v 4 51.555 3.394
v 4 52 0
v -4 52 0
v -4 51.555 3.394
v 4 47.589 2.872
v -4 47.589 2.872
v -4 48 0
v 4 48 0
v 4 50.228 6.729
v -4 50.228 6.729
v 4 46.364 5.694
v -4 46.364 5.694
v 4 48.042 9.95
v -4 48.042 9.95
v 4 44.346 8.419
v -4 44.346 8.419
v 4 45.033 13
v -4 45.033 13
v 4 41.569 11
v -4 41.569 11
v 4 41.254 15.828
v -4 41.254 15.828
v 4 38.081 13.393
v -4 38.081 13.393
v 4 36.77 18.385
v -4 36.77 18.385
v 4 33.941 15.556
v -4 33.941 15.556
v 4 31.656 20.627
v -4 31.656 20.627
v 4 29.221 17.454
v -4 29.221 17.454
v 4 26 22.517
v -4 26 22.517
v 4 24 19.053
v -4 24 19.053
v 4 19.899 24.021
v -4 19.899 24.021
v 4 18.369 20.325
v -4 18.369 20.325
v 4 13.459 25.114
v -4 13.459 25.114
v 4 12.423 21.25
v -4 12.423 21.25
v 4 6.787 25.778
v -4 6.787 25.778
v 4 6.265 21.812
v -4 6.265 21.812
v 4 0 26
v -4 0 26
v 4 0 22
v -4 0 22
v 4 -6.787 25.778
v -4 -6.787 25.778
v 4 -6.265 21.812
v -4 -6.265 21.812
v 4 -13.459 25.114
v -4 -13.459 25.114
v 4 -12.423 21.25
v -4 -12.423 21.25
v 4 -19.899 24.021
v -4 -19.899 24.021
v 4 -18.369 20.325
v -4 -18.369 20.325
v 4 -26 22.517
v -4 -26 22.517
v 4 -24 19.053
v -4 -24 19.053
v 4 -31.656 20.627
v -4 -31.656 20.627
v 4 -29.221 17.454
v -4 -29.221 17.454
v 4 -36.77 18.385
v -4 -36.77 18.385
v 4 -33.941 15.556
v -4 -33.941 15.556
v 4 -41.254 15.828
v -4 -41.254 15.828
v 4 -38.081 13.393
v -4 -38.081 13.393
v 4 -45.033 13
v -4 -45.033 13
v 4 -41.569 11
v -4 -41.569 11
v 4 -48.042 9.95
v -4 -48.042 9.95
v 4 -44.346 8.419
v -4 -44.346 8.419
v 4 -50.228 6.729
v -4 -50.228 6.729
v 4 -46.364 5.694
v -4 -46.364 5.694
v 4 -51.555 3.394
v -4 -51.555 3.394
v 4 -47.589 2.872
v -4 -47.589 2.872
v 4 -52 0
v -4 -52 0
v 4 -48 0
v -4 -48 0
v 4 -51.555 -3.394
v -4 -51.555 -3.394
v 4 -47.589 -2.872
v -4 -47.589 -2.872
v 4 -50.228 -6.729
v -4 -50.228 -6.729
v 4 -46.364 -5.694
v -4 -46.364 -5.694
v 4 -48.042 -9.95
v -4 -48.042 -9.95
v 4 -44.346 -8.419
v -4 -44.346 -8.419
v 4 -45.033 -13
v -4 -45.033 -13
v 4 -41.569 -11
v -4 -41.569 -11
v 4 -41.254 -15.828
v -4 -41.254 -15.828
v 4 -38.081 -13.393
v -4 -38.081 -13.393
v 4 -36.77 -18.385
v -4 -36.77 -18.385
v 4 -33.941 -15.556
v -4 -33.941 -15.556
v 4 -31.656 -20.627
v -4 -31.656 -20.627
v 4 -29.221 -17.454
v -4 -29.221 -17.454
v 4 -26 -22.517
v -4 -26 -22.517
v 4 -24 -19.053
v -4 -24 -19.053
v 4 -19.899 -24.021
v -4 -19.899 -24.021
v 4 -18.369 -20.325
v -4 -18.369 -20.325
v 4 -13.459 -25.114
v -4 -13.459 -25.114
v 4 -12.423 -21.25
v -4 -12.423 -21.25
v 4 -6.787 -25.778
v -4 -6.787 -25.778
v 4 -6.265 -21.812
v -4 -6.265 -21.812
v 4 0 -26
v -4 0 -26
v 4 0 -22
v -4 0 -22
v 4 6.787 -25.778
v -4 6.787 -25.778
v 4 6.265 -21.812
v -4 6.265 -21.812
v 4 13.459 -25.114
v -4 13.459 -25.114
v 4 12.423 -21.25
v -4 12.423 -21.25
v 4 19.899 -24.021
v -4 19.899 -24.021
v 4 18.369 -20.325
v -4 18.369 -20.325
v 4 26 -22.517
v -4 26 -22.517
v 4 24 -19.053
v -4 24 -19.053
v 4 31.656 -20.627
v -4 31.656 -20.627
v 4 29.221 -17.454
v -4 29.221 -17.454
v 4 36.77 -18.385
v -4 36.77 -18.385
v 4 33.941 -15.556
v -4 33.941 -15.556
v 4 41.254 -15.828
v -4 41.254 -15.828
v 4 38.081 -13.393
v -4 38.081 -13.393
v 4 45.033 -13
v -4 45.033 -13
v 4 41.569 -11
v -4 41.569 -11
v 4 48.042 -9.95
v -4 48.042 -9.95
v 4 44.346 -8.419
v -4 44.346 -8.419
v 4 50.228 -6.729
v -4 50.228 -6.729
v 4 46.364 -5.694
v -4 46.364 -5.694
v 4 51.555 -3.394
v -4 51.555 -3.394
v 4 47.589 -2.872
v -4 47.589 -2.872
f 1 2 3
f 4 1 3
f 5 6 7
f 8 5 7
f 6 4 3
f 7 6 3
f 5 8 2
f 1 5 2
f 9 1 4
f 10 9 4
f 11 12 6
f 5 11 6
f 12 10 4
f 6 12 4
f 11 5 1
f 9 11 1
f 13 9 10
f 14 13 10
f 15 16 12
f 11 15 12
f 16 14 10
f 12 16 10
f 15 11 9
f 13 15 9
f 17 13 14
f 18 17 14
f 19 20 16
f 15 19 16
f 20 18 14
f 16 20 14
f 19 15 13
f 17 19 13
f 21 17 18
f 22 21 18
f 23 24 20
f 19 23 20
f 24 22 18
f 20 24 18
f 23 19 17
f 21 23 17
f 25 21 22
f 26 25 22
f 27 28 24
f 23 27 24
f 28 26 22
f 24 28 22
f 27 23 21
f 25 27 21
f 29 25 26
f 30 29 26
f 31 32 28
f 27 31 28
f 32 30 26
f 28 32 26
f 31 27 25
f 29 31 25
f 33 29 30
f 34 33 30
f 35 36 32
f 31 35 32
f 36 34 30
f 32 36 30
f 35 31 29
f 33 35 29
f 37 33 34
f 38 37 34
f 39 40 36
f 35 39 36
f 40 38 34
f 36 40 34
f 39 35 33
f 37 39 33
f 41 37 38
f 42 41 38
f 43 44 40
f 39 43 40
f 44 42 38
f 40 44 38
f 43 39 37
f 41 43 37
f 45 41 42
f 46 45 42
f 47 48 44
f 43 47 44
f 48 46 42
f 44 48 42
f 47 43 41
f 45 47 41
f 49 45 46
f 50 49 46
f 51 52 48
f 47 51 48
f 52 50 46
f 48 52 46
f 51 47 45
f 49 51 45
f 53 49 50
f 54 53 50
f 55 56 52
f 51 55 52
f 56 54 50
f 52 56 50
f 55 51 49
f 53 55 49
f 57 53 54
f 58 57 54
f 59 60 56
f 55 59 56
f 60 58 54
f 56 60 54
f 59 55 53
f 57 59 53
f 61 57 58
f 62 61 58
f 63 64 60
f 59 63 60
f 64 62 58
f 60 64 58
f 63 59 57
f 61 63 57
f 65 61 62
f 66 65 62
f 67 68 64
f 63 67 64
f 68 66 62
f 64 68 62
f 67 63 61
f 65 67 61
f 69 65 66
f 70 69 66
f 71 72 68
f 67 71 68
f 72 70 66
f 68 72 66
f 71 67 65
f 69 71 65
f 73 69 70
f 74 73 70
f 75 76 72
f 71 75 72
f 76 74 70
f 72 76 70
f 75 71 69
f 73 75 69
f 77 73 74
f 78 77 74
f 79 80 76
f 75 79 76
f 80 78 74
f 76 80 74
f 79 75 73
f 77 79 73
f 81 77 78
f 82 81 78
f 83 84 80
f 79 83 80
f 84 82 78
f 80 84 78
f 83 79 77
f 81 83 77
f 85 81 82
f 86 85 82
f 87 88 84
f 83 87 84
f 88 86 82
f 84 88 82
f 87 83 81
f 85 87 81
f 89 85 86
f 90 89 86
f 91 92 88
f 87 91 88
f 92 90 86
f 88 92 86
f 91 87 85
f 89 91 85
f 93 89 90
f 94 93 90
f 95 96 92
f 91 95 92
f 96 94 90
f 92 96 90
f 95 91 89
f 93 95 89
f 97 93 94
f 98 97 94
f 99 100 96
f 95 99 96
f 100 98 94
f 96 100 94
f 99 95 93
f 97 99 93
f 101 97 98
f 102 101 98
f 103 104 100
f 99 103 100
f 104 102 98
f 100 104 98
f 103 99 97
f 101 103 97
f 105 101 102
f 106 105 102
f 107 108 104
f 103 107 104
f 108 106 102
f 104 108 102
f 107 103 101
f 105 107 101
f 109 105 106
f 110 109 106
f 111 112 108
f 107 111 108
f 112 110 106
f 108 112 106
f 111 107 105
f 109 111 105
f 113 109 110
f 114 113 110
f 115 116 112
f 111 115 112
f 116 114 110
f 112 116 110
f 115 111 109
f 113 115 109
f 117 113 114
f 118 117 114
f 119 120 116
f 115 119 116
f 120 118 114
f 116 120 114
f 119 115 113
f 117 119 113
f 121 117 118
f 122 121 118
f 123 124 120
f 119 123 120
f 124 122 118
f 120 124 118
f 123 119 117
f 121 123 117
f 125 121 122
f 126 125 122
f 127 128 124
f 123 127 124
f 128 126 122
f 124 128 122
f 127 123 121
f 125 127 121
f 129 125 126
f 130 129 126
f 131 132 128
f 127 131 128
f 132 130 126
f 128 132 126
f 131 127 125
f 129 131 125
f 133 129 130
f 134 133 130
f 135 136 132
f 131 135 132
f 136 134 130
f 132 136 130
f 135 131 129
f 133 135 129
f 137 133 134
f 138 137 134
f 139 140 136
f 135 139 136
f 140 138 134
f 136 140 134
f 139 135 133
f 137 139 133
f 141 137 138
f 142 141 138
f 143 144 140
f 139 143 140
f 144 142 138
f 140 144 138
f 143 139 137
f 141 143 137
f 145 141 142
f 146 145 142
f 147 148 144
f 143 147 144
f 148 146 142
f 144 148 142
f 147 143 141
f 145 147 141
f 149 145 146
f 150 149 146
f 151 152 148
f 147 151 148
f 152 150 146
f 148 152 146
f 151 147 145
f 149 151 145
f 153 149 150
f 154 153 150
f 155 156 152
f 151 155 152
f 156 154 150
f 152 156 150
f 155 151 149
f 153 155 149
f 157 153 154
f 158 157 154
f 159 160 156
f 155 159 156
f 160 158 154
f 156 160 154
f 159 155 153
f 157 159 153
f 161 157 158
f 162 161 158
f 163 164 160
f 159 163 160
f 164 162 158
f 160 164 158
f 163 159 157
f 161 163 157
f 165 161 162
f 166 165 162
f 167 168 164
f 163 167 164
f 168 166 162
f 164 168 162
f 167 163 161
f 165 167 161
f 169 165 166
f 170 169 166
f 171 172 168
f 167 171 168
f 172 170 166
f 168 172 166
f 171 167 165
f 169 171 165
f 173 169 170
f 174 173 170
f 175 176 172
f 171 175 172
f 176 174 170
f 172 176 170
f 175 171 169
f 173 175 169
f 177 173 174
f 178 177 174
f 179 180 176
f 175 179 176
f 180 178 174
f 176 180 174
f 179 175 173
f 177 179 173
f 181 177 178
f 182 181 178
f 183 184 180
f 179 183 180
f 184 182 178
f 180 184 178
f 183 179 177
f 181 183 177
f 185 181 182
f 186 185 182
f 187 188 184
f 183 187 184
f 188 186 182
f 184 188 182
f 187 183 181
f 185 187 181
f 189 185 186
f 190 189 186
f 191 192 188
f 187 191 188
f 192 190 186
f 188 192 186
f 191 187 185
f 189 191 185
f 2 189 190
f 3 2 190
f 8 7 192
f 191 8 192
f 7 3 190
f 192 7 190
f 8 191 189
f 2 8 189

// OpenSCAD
polyhedron(points=[[-4.0, 52.0, 0.0], [-4.0, 51.555133, 3.393681], [-4.0, 50.228143, 6.729295], [-4.0, 48.041736, 9.949769], [-4.0, 45.033321, 13.0], [-4.0, 41.254374, 15.827797], [-4.0, 36.769553, 18.384776], [-4.0, 31.655594, 20.627187], [-4.0, 26.0, 22.51666], [-4.0, 19.899538, 24.020868], [-4.0, 13.45859, 25.114071], [-4.0, 6.787362, 25.777566], [-4.0, 0.0, 26.0], [-4.0, -6.787362, 25.777566], [-4.0, -13.45859, 25.114071], [-4.0, -19.899538, 24.020868], [-4.0, -26.0, 22.51666], [-4.0, -31.655594, 20.627187], [-4.0, -36.769553, 18.384776], [-4.0, -41.254374, 15.827797], [-4.0, -45.033321, 13.0], [-4.0, -48.041736, 9.949769], [-4.0, -50.228143, 6.729295], [-4.0, -51.555133, 3.393681], [-4.0, -52.0, 0.0], [-4.0, -51.555133, -3.393681], [-4.0, -50.228143, -6.729295], [-4.0, -48.041736, -9.949769], [-4.0, -45.033321, -13.0], [-4.0, -41.254374, -15.827797], [-4.0, -36.769553, -18.384776], [-4.0, -31.655594, -20.627187], [-4.0, -26.0, -22.51666], [-4.0, -19.899538, -24.020868], [-4.0, -13.45859, -25.114071], [-4.0, -6.787362, -25.777566], [-4.0, -0.0, -26.0], [-4.0, 6.787362, -25.777566], [-4.0, 13.45859, -25.114071], [-4.0, 19.899538, -24.020868], [-4.0, 26.0, -22.51666], [-4.0, 31.655594, -20.627187], [-4.0, 36.769553, -18.384776], [-4.0, 41.254374, -15.827797], [-4.0, 45.033321, -13.0], [-4.0, 48.041736, -9.949769], [-4.0, 50.228143, -6.729295], [-4.0, 51.555133, -3.393681], [-4.0, 48.0, 0.0], [-4.0, 47.589353, 2.871576], [-4.0, 46.36444, 5.694019], [-4.0, 44.346218, 8.419036], [-4.0, 41.569219, 11.0], [-4.0, 38.08096, 13.392751], [-4.0, 33.941125, 15.556349], [-4.0, 29.220549, 17.453773], [-4.0, 24.0, 19.052559], [-4.0, 18.368805, 20.32535], [-4.0, 12.423314, 21.250368], [-4.0, 6.265257, 21.811787], [-4.0, 0.0, 22.0], [-4.0, -6.265257, 21.811787], [-4.0, -12.423314, 21.250368], [-4.0, -18.368805, 20.32535], [-4.0, -24.0, 19.052559], [-4.0, -29.220549, 17.453773], [-4.0, -33.941125, 15.556349], [-4.0, -38.08096, 13.392751], [-4.0, -41.569219, 11.0], [-4.0, -44.346218, 8.419036], [-4.0, -46.36444, 5.694019], [-4.0, -47.589353, 2.871576], [-4.0, -48.0, 0.0], [-4.0, -47.589353, -2.871576], [-4.0, -46.36444, -5.694019], [-4.0, -44.346218, -8.419036], [-4.0, -41.569219, -11.0], [-4.0, -38.08096, -13.392751], [-4.0, -33.941125, -15.556349], [-4.0, -29.220549, -17.453773], [-4.0, -24.0, -19.052559], [-4.0, -18.368805, -20.32535], [-4.0, -12.423314, -21.250368], [-4.0, -6.265257, -21.811787], [-4.0, -0.0, -22.0], [-4.0, 6.265257, -21.811787], [-4.0, 12.423314, -21.250368], [-4.0, 18.368805, -20.32535], [-4.0, 24.0, -19.052559], [-4.0, 29.220549, -17.453773], [-4.0, 33.941125, -15.556349], [-4.0, 38.08096, -13.392751], [-4.0, 41.569219, -11.0], [-4.0, 44.346218, -8.419036], [-4.0, 46.36444, -5.694019], [-4.0, 47.589353, -2.871576], [4.0, 52.0, 0.0], [4.0, 51.555133, 3.393681], [4.0, 50.228143, 6.729295], [4.0, 48.041736, 9.949769], [4.0, 45.033321, 13.0], [4.0, 41.254374, 15.827797], [4.0, 36.769553, 18.384776], [4.0, 31.655594, 20.627187], [4.0, 26.0, 22.51666], [4.0, 19.899538, 24.020868], [4.0, 13.45859, 25.114071], [4.0, 6.787362, 25.777566], [4.0, 0.0, 26.0], [4.0, -6.787362, 25.777566], [4.0, -13.45859, 25.114071], [4.0, -19.899538, 24.020868], [4.0, -26.0, 22.51666], [4.0, -31.655594, 20.627187], [4.0, -36.769553, 18.384776], [4.0, -41.254374, 15.827797], [4.0, -45.033321, 13.0], [4.0, -48.041736, 9.949769], [4.0, -50.228143, 6.729295], [4.0, -51.555133, 3.393681], [4.0, -52.0, 0.0], [4.0, -51.555133, -3.393681], [4.0, -50.228143, -6.729295], [4.0, -48.041736, -9.949769], [4.0, -45.033321, -13.0], [4.0, -41.254374, -15.827797], [4.0, -36.769553, -18.384776], [4.0, -31.655594, -20.627187], [4.0, -26.0, -22.51666], [4.0, -19.899538, -24.020868], [4.0, -13.45859, -25.114071], [4.0, -6.787362, -25.777566], [4.0, -0.0, -26.0], [4.0, 6.787362, -25.777566], [4.0, 13.45859, -25.114071], [4.0, 19.899538, -24.020868], [4.0, 26.0, -22.51666], [4.0, 31.655594, -20.627187], [4.0, 36.769553, -18.384776], [4.0, 41.254374, -15.827797], [4.0, 45.033321, -13.0], [4.0, 48.041736, -9.949769], [4.0, 50.228143, -6.729295], [4.0, 51.555133, -3.393681], [4.0, 48.0, 0.0], [4.0, 47.589353, 2.871576], [4.0, 46.36444, 5.694019], [4.0, 44.346218, 8.419036], [4.0, 41.569219, 11.0], [4.0, 38.08096, 13.392751], [4.0, 33.941125, 15.556349], [4.0, 29.220549, 17.453773], [4.0, 24.0, 19.052559], [4.0, 18.368805, 20.32535], [4.0, 12.423314, 21.250368], [4.0, 6.265257, 21.811787], [4.0, 0.0, 22.0], [4.0, -6.265257, 21.811787], [4.0, -12.423314, 21.250368], [4.0, -18.368805, 20.32535], [4.0, -24.0, 19.052559], [4.0, -29.220549, 17.453773], [4.0, -33.941125, 15.556349], [4.0, -38.08096, 13.392751], [4.0, -41.569219, 11.0], [4.0, -44.346218, 8.419036], [4.0, -46.36444, 5.694019], [4.0, -47.589353, 2.871576], [4.0, -48.0, 0.0], [4.0, -47.589353, -2.871576], [4.0, -46.36444, -5.694019], [4.0, -44.346218, -8.419036], [4.0, -41.569219, -11.0], [4.0, -38.08096, -13.392751], [4.0, -33.941125, -15.556349], [4.0, -29.220549, -17.453773], [4.0, -24.0, -19.052559], [4.0, -18.368805, -20.32535], [4.0, -12.423314, -21.250368], [4.0, -6.265257, -21.811787], [4.0, -0.0, -22.0], [4.0, 6.265257, -21.811787], [4.0, 12.423314, -21.250368], [4.0, 18.368805, -20.32535], [4.0, 24.0, -19.052559], [4.0, 29.220549, -17.453773], [4.0, 33.941125, -15.556349], [4.0, 38.08096, -13.392751], [4.0, 41.569219, -11.0], [4.0, 44.346218, -8.419036], [4.0, 46.36444, -5.694019], [4.0, 47.589353, -2.871576]], faces=[[0, 96, 97], [0, 97, 1], [48, 49, 145], [48, 145, 144], [0, 1, 49], [0, 49, 48], [96, 144, 145], [96, 145, 97], [1, 97, 98], [1, 98, 2], [49, 50, 146], [49, 146, 145], [1, 2, 50], [1, 50, 49], [97, 145, 146], [97, 146, 98], [2, 98, 99], [2, 99, 3], [50, 51, 147], [50, 147, 146], [2, 3, 51], [2, 51, 50], [98, 146, 147], [98, 147, 99], [3, 99, 100], [3, 100, 4], [51, 52, 148], [51, 148, 147], [3, 4, 52], [3, 52, 51], [99, 147, 148], [99, 148, 100], [4, 100, 101], [4, 101, 5], [52, 53, 149], [52, 149, 148], [4, 5, 53], [4, 53, 52], [100, 148, 149], [100, 149, 101], [5, 101, 102], [5, 102, 6], [53, 54, 150], [53, 150, 149], [5, 6, 54], [5, 54, 53], [101, 149, 150], [101, 150, 102], [6, 102, 103], [6, 103, 7], [54, 55, 151], [54, 151, 150], [6, 7, 55], [6, 55, 54], [102, 150, 151], [102, 151, 103], [7, 103, 104], [7, 104, 8], [55, 56, 152], [55, 152, 151], [7, 8, 56], [7, 56, 55], [103, 151, 152], [103, 152, 104], [8, 104, 105], [8, 105, 9], [56, 57, 153], [56, 153, 152], [8, 9, 57], [8, 57, 56], [104, 152, 153], [104, 153, 105], [9, 105, 106], [9, 106, 10], [57, 58, 154], [57, 154, 153], [9, 10, 58], [9, 58, 57], [105, 153, 154], [105, 154, 106], [10, 106, 107], [10, 107, 11], [58, 59, 155], [58, 155, 154], [10, 11, 59], [10, 59, 58], [106, 154, 155], [106, 155, 107], [11, 107, 108], [11, 108, 12], [59, 60, 156], [59, 156, 155], [11, 12, 60], [11, 60, 59], [107, 155, 156], [107, 156, 108], [12, 108, 109], [12, 109, 13], [60, 61, 157], [60, 157, 156], [12, 13, 61], [12, 61, 60], [108, 156, 157], [108, 157, 109], [13, 109, 110], [13, 110, 14], [61, 62, 158], [61, 158, 157], [13, 14, 62], [13, 62, 61], [109, 157, 158], [109, 158, 110], [14, 110, 111], [14, 111, 15], [62, 63, 159], [62, 159, 158], [14, 15, 63], [14, 63, 62], [110, 158, 159], [110, 159, 111], [15, 111, 112], [15, 112, 16], [63, 64, 160], [63, 160, 159], [15, 16, 64], [15, 64, 63], [111, 159, 160], [111, 160, 112], [16, 112, 113], [16, 113, 17], [64, 65, 161], [64, 161, 160], [16, 17, 65], [16, 65, 64], [112, 160, 161], [112, 161, 113], [17, 113, 114], [17, 114, 18], [65, 66, 162], [65, 162, 161], [17, 18, 66], [17, 66, 65], [113, 161, 162], [113, 162, 114], [18, 114, 115], [18, 115, 19], [66, 67, 163], [66, 163, 162], [18, 19, 67], [18, 67, 66], [114, 162, 163], [114, 163, 115], [19, 115, 116], [19, 116, 20], [67, 68, 164], [67, 164, 163], [19, 20, 68], [19, 68, 67], [115, 163, 164], [115, 164, 116], [20, 116, 117], [20, 117, 21], [68, 69, 165], [68, 165, 164], [20, 21, 69], [20, 69, 68], [116, 164, 165], [116, 165, 117], [21, 117, 118], [21, 118, 22], [69, 70, 166], [69, 166, 165], [21, 22, 70], [21, 70, 69], [117, 165, 166], [117, 166, 118], [22, 118, 119], [22, 119, 23], [70, 71, 167], [70, 167, 166], [22, 23, 71], [22, 71, 70], [118, 166, 167], [118, 167, 119], [23, 119, 120], [23, 120, 24], [71, 72, 168], [71, 168, 167], [23, 24, 72], [23, 72, 71], [119, 167, 168], [119, 168, 120], [24, 120, 121], [24, 121, 25], [72, 73, 169], [72, 169, 168], [24, 25, 73], [24, 73, 72], [120, 168, 169], [120, 169, 121], [25, 121, 122], [25, 122, 26], [73, 74, 170], [73, 170, 169], [25, 26, 74], [25, 74, 73], [121, 169, 170], [121, 170, 122], [26, 122, 123], [26, 123, 27], [74, 75, 171], [74, 171, 170], [26, 27, 75], [26, 75, 74], [122, 170, 171], [122, 171, 123], [27, 123, 124], [27, 124, 28], [75, 76, 172], [75, 172, 171], [27, 28, 76], [27, 76, 75], [123, 171, 172], [123, 172, 124], [28, 124, 125], [28, 125, 29], [76, 77, 173], [76, 173, 172], [28, 29, 77], [28, 77, 76], [124, 172, 173], [124, 173, 125], [29, 125, 126], [29, 126, 30], [77, 78, 174], [77, 174, 173], [29, 30, 78], [29, 78, 77], [125, 173, 174], [125, 174, 126], [30, 126, 127], [30, 127, 31], [78, 79, 175], [78, 175, 174], [30, 31, 79], [30, 79, 78], [126, 174, 175], [126, 175, 127], [31, 127, 128], [31, 128, 32], [79, 80, 176], [79, 176, 175], [31, 32, 80], [31, 80, 79], [127, 175, 176], [127, 176, 128], [32, 128, 129], [32, 129, 33], [80, 81, 177], [80, 177, 176], [32, 33, 81], [32, 81, 80], [128, 176, 177], [128, 177, 129], [33, 129, 130], [33, 130, 34], [81, 82, 178], [81, 178, 177], [33, 34, 82], [33, 82, 81], [129, 177, 178], [129, 178, 130], [34, 130, 131], [34, 131, 35], [82, 83, 179], [82, 179, 178], [34, 35, 83], [34, 83, 82], [130, 178, 179], [130, 179, 131], [35, 131, 132], [35, 132, 36], [83, 84, 180], [83, 180, 179], [35, 36, 84], [35, 84, 83], [131, 179, 180], [131, 180, 132], [36, 132, 133], [36, 133, 37], [84, 85, 181], [84, 181, 180], [36, 37, 85], [36, 85, 84], [132, 180, 181], [132, 181, 133], [37, 133, 134], [37, 134, 38], [85, 86, 182], [85, 182, 181], [37, 38, 86], [37, 86, 85], [133, 181, 182], [133, 182, 134], [38, 134, 135], [38, 135, 39], [86, 87, 183], [86, 183, 182], [38, 39, 87], [38, 87, 86], [134, 182, 183], [134, 183, 135], [39, 135, 136], [39, 136, 40], [87, 88, 184], [87, 184, 183], [39, 40, 88], [39, 88, 87], [135, 183, 184], [135, 184, 136], [40, 136, 137], [40, 137, 41], [88, 89, 185], [88, 185, 184], [40, 41, 89], [40, 89, 88], [136, 184, 185], [136, 185, 137], [41, 137, 138], [41, 138, 42], [89, 90, 186], [89, 186, 185], [41, 42, 90], [41, 90, 89], [137, 185, 186], [137, 186, 138], [42, 138, 139], [42, 139, 43], [90, 91, 187], [90, 187, 186], [42, 43, 91], [42, 91, 90], [138, 186, 187], [138, 187, 139], [43, 139, 140], [43, 140, 44], [91, 92, 188], [91, 188, 187], [43, 44, 92], [43, 92, 91], [139, 187, 188], [139, 188, 140], [44, 140, 141], [44, 141, 45], [92, 93, 189], [92, 189, 188], [44, 45, 93], [44, 93, 92], [140, 188, 189], [140, 189, 141], [45, 141, 142], [45, 142, 46], [93, 94, 190], [93, 190, 189], [45, 46, 94], [45, 94, 93], [141, 189, 190], [141, 190, 142], [46, 142, 143], [46, 143, 47], [94, 95, 191], [94, 191, 190], [46, 47, 95], [46, 95, 94], [142, 190, 191], [142, 191, 143], [47, 143, 96], [47, 96, 0], [95, 48, 144], [95, 144, 191], [47, 0, 48], [47, 48, 95], [143, 191, 144], [143, 144, 96]], convexity=20);
